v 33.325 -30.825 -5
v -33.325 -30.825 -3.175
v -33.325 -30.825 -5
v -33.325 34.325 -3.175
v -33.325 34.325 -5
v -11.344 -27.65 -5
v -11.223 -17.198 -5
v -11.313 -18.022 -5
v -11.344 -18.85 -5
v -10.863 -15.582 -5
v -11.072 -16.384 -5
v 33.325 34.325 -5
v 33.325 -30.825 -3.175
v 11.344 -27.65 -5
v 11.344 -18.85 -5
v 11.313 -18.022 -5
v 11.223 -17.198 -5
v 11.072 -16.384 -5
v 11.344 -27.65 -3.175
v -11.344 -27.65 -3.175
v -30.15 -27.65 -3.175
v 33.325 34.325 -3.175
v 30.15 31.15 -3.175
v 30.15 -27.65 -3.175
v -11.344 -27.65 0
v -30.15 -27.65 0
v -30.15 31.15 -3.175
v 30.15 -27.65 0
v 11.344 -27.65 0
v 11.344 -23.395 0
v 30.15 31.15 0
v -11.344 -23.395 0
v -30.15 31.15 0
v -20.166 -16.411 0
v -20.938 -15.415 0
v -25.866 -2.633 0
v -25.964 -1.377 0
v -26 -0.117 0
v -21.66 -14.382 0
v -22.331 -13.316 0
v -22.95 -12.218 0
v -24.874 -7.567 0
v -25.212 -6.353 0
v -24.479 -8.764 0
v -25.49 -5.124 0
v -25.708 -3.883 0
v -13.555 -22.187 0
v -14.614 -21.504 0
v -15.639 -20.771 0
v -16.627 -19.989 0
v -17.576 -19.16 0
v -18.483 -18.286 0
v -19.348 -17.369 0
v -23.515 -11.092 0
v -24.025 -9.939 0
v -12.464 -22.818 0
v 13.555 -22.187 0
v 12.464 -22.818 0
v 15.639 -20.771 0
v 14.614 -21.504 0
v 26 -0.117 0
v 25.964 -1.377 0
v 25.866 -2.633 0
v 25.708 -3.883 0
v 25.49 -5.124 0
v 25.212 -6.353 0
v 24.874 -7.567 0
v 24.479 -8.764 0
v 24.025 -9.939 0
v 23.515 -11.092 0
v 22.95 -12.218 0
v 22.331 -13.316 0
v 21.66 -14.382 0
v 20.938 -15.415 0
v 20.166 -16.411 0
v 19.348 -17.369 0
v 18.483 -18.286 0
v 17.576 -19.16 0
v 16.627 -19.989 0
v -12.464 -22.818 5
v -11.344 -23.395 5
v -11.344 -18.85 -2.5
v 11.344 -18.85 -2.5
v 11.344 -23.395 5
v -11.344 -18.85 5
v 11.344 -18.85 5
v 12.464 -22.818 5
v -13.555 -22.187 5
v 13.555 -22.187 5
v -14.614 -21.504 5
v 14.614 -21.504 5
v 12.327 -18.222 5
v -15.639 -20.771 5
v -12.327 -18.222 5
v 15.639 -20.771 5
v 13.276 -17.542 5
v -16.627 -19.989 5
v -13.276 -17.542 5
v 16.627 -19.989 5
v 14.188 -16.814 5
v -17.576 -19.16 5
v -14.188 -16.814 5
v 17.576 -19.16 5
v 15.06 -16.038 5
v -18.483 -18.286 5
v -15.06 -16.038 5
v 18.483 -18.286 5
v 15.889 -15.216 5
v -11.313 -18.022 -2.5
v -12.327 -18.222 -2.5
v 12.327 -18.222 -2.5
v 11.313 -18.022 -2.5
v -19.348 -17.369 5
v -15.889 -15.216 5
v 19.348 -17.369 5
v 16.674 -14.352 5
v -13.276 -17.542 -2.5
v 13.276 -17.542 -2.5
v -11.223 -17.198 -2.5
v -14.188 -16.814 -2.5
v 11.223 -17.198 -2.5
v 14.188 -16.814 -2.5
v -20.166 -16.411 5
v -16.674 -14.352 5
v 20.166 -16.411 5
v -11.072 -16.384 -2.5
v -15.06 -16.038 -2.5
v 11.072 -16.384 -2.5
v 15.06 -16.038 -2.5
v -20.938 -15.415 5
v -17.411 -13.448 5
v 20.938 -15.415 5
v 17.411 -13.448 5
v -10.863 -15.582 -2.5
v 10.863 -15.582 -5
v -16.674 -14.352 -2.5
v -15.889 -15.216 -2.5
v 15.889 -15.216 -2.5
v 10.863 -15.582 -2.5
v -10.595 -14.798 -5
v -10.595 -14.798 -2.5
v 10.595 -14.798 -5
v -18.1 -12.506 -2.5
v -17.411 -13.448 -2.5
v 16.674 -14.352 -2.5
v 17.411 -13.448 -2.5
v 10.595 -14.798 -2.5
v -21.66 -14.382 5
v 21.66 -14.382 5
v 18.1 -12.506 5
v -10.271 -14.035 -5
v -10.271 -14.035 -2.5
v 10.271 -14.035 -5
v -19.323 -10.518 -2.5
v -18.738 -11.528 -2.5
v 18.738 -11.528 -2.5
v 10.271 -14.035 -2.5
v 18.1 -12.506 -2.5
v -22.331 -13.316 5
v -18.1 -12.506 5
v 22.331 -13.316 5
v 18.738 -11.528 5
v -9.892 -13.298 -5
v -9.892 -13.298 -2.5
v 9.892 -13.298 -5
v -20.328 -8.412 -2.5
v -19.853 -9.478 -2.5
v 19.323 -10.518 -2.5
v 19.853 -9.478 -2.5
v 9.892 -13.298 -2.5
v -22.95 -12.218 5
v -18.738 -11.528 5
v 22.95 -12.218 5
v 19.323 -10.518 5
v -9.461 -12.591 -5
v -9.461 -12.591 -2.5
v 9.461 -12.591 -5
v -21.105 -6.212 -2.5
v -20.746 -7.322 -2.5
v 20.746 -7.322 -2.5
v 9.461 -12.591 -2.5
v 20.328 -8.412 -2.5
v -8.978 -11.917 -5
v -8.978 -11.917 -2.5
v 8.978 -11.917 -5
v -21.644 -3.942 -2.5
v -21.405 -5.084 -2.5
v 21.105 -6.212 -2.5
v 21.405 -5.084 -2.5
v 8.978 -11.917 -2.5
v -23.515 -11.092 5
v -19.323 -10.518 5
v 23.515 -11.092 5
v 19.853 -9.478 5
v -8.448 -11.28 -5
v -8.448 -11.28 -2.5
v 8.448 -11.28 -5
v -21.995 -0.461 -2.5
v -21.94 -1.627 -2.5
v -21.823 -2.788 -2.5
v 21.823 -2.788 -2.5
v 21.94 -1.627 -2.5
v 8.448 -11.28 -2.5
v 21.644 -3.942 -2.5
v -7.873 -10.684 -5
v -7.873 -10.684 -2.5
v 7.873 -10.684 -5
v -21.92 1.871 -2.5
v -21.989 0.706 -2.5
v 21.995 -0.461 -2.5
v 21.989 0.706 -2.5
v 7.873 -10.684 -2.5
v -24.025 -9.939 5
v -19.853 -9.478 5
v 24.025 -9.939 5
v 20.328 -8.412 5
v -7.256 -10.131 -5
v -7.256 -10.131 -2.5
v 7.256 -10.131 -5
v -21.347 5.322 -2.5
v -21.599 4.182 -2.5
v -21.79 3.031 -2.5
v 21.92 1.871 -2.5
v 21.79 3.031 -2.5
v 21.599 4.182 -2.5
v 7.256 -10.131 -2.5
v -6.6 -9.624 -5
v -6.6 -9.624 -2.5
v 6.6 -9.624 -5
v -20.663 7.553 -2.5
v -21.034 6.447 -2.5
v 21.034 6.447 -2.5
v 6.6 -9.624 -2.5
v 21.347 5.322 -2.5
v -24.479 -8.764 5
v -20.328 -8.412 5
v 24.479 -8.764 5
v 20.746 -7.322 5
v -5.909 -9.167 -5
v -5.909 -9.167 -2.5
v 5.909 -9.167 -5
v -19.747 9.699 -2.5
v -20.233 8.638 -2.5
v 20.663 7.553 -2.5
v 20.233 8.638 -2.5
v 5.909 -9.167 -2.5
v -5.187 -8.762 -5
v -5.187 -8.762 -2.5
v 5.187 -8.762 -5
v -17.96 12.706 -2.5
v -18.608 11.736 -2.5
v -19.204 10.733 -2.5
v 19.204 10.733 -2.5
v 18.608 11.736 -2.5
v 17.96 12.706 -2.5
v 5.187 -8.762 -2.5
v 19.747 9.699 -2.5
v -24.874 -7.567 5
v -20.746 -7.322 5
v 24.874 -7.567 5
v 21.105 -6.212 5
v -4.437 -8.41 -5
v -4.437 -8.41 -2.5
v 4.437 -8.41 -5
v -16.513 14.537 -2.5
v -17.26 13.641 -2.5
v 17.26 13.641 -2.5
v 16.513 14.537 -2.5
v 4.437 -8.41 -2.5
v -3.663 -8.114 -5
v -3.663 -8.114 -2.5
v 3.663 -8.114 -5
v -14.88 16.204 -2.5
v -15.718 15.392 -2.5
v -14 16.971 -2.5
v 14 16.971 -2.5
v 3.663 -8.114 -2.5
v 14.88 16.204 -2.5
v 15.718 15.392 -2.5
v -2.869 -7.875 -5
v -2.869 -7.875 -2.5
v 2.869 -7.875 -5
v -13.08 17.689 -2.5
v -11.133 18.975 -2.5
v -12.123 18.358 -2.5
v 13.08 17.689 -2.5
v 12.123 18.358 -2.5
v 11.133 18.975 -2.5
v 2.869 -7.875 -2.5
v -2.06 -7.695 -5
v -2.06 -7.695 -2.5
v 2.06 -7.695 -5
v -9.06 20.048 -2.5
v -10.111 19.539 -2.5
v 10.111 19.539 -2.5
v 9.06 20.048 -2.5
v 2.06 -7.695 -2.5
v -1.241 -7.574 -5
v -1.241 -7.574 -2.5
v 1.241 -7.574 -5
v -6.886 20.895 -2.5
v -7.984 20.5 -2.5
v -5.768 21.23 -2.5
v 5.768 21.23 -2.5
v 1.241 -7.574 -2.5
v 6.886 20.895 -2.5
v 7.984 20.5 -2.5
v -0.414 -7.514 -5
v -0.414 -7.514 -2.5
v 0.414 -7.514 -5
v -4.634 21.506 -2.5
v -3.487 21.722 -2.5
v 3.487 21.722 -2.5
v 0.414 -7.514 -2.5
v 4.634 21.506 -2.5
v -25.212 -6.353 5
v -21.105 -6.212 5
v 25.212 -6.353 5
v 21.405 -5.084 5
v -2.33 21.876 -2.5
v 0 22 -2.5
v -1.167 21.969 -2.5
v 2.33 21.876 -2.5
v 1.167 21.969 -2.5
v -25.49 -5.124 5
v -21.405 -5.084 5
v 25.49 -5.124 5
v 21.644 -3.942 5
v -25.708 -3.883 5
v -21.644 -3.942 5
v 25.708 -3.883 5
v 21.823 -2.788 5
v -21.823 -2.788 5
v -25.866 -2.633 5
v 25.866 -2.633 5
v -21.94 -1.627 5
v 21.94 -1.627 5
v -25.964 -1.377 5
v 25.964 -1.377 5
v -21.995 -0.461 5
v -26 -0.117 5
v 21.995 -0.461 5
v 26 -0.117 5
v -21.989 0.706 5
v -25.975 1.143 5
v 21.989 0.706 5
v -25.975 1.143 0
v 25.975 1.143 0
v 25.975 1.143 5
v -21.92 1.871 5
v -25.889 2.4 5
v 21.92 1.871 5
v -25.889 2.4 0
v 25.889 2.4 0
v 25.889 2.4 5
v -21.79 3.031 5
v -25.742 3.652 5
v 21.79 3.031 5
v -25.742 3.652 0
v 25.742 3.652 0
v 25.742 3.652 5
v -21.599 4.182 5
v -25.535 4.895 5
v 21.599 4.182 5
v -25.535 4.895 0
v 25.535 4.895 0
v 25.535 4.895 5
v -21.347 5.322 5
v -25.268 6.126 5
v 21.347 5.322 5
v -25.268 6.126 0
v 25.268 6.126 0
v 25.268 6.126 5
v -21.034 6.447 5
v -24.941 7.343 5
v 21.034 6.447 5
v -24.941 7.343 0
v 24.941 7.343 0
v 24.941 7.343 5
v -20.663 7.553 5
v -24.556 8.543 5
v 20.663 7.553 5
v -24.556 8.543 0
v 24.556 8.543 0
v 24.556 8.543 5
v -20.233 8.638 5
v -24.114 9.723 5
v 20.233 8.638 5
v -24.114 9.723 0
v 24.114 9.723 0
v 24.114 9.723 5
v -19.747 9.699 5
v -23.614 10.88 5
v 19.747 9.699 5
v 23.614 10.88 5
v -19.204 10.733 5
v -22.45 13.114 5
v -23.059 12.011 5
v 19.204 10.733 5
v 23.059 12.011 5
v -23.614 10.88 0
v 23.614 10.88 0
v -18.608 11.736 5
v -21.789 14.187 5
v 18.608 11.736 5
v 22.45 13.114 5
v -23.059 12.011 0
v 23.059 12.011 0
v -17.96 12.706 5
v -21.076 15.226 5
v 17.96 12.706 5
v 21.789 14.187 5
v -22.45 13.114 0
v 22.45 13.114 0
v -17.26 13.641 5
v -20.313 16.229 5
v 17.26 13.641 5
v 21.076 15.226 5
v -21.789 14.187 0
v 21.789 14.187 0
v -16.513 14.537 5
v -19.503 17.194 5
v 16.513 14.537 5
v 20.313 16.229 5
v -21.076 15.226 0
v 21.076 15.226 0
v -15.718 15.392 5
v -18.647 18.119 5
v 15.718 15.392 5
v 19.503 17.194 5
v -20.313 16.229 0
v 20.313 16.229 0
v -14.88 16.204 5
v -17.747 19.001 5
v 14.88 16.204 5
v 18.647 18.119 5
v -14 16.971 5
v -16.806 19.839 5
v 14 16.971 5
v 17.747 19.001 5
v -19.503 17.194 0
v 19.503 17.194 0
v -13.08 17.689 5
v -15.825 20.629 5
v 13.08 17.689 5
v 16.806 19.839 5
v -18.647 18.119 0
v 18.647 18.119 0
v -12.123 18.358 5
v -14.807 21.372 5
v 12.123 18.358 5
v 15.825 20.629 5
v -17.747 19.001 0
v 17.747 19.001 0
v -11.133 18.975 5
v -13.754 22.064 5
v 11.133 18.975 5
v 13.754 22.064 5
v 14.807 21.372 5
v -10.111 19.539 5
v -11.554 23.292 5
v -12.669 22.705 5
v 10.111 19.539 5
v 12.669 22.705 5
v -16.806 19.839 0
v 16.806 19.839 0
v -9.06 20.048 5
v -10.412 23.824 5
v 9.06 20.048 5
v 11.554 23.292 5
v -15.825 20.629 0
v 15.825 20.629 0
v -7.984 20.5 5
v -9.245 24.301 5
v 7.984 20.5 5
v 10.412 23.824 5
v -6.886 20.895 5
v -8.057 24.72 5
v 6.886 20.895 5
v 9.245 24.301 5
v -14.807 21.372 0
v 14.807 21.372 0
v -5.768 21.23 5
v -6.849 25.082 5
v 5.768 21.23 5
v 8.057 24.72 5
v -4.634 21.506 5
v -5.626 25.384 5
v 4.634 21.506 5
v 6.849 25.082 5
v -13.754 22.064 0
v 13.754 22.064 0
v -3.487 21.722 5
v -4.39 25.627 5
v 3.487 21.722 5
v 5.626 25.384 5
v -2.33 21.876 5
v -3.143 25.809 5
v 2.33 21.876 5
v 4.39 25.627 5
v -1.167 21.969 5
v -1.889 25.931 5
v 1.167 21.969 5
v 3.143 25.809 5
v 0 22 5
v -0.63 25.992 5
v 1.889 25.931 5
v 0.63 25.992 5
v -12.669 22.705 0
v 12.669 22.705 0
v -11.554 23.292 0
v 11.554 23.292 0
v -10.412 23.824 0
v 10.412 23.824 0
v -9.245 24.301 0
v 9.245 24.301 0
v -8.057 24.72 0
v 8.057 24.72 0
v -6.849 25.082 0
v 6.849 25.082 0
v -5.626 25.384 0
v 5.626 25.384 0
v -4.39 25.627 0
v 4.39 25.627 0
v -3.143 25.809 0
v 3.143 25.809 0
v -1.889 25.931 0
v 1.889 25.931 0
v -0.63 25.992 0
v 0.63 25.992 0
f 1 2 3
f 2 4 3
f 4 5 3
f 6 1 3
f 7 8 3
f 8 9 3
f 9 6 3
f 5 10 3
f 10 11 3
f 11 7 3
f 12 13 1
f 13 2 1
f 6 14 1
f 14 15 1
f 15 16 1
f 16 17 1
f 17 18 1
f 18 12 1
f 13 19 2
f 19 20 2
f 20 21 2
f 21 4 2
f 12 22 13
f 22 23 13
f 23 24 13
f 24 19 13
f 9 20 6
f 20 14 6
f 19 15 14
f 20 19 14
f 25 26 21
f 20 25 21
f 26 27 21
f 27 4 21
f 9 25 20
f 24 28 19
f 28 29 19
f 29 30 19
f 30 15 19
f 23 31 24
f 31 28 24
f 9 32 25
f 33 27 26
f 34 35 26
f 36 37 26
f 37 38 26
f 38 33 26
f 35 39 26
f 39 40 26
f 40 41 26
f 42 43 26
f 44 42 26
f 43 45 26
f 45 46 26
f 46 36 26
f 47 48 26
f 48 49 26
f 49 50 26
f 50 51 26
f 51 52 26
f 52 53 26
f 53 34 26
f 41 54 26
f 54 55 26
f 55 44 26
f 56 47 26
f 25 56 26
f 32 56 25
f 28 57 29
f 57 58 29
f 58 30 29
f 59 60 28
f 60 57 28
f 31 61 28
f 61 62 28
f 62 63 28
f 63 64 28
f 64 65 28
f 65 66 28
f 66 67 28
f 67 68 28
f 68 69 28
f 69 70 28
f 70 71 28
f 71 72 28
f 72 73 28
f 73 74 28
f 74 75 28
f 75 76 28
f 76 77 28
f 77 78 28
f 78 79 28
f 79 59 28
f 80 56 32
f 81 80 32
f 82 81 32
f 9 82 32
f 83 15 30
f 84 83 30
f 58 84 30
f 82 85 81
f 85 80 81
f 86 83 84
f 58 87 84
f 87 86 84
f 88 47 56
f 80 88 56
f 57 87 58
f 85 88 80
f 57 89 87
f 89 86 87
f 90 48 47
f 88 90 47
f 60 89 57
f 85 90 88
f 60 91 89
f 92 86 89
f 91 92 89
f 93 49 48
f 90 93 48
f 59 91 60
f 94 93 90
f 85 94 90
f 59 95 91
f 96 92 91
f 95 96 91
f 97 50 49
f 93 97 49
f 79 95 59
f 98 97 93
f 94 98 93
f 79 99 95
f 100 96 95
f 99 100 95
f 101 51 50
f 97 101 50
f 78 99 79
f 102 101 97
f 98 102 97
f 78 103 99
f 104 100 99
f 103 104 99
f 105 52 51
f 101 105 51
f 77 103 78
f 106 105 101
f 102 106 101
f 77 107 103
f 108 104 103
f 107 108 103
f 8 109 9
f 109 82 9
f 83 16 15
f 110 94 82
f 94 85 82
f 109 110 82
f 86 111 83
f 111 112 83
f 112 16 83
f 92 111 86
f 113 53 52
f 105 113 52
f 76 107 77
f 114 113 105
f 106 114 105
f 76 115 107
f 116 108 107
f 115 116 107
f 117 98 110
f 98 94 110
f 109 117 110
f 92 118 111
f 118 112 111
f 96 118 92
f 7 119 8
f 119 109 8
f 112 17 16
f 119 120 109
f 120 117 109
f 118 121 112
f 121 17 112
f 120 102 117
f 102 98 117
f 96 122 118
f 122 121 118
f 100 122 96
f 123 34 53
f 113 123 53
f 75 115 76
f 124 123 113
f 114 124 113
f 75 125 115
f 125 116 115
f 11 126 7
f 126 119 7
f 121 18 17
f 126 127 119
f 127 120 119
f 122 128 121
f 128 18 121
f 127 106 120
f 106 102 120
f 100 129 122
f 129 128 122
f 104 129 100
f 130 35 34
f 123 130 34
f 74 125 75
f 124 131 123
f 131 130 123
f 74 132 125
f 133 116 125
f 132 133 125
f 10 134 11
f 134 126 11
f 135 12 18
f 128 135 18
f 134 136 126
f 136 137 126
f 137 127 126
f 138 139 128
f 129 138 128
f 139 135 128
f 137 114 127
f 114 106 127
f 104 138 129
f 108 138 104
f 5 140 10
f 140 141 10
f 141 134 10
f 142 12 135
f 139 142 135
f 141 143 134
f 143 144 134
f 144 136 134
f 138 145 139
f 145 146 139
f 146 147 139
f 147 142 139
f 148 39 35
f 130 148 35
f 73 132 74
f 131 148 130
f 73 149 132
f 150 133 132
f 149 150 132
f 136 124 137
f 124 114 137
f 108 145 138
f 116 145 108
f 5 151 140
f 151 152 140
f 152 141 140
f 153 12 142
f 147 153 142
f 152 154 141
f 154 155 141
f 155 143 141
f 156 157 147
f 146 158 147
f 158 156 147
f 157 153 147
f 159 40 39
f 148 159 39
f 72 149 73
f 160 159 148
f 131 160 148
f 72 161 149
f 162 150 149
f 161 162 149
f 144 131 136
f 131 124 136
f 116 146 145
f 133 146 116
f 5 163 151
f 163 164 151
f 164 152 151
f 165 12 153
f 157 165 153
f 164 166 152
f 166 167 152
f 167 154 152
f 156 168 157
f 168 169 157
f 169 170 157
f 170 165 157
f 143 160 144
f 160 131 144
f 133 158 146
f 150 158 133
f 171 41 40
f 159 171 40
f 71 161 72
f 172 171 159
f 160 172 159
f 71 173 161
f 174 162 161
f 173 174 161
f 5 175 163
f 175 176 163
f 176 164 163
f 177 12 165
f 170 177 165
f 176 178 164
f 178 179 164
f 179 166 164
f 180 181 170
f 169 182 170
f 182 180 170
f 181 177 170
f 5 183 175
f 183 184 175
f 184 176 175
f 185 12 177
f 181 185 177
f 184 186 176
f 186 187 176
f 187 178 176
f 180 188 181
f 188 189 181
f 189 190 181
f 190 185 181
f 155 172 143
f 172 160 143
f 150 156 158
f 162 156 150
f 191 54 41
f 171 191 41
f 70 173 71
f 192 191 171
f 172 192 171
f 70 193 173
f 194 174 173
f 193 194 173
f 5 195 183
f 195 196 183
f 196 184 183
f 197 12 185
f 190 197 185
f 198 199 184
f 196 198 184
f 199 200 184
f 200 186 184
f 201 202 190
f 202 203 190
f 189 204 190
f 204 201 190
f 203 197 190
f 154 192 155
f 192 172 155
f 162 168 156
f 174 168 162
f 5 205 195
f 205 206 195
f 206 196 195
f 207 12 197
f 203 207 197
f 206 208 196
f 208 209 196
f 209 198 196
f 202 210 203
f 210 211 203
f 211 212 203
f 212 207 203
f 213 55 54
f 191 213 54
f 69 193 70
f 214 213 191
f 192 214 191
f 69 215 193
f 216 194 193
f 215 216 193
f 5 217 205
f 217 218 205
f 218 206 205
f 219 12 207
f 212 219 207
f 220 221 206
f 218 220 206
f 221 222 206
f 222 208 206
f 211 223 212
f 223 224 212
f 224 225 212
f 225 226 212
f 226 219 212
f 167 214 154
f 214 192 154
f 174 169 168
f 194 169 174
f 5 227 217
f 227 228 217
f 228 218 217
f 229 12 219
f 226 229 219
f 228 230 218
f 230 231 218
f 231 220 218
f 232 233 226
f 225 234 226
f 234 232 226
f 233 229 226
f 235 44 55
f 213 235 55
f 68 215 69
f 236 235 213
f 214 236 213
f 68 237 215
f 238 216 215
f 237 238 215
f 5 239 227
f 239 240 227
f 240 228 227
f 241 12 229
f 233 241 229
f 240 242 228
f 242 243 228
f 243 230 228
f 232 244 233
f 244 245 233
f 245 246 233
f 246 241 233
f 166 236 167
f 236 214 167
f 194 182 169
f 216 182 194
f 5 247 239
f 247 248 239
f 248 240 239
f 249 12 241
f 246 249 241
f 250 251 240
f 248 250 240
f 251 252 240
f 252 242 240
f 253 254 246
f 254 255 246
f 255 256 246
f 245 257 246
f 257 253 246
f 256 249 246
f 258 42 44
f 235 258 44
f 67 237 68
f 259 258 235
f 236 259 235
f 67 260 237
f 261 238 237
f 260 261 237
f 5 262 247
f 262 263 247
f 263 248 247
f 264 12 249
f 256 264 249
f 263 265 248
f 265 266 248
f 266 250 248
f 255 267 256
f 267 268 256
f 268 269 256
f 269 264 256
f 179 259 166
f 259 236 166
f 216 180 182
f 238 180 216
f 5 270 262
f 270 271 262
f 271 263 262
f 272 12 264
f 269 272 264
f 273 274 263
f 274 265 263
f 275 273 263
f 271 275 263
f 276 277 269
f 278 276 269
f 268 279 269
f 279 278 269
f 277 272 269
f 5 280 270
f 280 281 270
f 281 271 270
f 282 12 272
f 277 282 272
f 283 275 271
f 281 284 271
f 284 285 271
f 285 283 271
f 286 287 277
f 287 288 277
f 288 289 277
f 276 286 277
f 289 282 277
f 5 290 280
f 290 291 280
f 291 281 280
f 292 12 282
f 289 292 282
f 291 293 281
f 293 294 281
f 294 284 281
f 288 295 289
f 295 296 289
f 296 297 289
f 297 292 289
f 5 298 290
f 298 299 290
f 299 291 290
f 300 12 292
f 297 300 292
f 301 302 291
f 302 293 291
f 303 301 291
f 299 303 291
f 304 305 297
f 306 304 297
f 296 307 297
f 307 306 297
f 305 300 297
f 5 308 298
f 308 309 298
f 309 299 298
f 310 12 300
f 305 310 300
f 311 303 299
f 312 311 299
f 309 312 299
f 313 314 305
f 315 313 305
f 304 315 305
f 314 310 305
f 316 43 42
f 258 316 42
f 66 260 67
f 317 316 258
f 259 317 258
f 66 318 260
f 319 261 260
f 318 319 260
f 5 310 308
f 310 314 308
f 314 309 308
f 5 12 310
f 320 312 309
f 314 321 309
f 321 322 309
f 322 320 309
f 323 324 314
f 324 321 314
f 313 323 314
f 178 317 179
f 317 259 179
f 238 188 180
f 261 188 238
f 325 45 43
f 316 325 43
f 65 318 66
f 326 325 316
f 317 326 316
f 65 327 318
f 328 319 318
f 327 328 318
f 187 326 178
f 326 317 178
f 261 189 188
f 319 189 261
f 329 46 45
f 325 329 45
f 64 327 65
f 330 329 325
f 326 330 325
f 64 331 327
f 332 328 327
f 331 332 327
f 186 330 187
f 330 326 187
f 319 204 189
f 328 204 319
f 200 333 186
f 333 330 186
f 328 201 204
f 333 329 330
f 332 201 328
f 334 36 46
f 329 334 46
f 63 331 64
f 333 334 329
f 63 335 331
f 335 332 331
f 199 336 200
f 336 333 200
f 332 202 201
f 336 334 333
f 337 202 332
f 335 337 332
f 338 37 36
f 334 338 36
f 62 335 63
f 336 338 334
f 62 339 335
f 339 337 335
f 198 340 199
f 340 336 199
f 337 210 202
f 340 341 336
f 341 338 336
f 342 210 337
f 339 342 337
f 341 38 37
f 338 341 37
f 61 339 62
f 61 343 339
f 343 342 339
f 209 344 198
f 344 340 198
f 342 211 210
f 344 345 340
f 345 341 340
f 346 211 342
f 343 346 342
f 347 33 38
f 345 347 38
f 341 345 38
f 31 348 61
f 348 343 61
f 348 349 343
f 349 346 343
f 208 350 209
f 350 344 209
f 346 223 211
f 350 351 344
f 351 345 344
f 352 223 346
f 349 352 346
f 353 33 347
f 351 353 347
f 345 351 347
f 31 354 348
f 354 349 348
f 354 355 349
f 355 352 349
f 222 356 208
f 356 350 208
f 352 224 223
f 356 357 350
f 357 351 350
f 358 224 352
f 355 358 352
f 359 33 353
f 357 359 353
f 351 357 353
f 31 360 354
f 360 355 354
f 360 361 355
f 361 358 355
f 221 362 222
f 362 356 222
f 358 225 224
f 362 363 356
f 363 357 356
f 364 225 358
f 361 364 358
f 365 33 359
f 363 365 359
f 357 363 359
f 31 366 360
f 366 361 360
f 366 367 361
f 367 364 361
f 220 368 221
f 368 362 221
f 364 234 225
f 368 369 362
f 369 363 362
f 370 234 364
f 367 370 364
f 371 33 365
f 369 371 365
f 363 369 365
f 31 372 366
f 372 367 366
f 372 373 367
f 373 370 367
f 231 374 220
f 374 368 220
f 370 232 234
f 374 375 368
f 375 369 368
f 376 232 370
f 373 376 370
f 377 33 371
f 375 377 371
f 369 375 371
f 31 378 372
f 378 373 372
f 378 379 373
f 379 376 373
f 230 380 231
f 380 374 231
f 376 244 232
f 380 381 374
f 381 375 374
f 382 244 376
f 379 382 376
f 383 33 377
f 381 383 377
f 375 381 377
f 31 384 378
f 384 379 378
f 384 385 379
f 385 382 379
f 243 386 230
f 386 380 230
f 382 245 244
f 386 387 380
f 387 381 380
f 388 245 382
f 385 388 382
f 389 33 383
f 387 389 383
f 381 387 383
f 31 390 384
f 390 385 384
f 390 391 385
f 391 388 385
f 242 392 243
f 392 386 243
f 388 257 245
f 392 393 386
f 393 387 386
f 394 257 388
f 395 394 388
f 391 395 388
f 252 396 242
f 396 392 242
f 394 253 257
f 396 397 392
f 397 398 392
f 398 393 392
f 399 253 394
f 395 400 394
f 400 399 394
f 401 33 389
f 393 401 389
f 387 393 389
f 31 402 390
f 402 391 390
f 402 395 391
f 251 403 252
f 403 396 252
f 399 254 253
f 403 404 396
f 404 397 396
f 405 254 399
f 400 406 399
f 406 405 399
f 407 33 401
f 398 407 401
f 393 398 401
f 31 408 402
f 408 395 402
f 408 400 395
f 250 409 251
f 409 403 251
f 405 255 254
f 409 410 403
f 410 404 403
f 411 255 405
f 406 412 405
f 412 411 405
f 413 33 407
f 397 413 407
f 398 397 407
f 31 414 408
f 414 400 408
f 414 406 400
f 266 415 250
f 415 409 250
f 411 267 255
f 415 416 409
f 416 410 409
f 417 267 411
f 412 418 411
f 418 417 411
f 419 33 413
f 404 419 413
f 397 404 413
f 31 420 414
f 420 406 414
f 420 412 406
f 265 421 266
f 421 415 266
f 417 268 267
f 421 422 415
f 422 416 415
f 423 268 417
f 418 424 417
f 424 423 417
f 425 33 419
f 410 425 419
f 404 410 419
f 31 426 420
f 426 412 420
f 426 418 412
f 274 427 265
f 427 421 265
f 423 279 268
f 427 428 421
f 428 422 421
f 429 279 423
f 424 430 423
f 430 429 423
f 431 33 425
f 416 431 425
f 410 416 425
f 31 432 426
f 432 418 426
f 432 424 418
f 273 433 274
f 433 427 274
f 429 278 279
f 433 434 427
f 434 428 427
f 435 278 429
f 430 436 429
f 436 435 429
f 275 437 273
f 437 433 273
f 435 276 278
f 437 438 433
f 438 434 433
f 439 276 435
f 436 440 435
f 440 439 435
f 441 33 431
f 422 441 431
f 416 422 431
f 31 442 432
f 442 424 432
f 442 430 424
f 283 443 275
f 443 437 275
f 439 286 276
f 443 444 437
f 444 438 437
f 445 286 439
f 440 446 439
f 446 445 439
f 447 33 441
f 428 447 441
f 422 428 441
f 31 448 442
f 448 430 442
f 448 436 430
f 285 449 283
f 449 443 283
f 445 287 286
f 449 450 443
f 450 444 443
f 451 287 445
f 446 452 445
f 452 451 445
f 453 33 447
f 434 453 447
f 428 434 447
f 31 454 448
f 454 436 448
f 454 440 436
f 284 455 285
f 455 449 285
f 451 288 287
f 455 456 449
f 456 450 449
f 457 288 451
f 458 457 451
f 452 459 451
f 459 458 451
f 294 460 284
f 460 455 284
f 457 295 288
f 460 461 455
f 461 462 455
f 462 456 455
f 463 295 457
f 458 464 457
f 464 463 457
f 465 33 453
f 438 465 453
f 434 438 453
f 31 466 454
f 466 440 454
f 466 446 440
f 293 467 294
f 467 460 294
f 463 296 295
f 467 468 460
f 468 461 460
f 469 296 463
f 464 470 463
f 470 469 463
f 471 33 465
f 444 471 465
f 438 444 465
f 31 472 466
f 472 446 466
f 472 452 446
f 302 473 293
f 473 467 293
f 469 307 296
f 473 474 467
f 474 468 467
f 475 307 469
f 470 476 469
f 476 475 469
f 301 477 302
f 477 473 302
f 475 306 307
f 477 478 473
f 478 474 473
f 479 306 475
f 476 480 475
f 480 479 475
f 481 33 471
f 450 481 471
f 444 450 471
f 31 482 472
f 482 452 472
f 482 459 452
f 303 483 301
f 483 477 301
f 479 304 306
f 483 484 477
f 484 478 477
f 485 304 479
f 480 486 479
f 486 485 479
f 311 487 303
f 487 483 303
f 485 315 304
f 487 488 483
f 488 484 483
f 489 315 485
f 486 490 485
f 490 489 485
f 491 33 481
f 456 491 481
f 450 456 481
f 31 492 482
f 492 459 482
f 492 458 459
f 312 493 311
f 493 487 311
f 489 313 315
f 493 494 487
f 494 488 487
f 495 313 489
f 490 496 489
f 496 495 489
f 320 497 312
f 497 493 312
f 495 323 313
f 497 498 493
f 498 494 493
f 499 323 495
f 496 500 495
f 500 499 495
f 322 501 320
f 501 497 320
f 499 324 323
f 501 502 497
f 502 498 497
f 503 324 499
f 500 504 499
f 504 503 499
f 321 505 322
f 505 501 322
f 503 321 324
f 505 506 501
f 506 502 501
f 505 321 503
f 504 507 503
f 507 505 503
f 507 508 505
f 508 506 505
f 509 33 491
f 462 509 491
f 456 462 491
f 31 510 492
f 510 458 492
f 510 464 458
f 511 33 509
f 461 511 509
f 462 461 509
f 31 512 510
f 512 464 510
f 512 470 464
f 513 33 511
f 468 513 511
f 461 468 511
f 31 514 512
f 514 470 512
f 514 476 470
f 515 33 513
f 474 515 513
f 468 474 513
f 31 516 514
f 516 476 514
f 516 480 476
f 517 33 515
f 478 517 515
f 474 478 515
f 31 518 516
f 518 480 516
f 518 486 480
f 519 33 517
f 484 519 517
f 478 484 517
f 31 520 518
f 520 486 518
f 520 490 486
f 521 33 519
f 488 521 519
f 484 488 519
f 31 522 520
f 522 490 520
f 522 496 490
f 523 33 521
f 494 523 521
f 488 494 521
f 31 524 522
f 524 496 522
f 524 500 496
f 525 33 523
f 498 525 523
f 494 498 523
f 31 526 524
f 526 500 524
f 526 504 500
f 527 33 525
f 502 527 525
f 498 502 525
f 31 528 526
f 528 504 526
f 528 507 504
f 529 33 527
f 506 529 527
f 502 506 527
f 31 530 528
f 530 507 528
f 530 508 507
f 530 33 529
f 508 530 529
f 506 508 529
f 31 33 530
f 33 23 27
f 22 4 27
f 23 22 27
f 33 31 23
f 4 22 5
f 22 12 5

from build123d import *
from build123d.topology import SkipClean

# Parameters (mm, degrees)
SKETCH16_W           = 60.3
SKETCH16_H           = 58.8
SKETCH16_R           = 22
BOSS_EXTRUDE2_DEPTH  = 5
SKETCH22_W           = 60.3
SKETCH22_H           = 2.5
BOSS_EXTRUDE7_DEPTH  = 50
BOSS_EXTRUDE8_START  = 5
BOSS_EXTRUDE8_DEPTH  = 5
SKETCH27_W           = 66.65
SKETCH27_H           = 65.15
BOSS_EXTRUDE10_DEPTH = 1.825
CUT_EXTRUDE3_DEPTH   = 26.375


with BuildPart() as part:
    # Sketch16 → Boss-Extrude2 (new body)
    with BuildSketch(Plane.XY):
        with Locations((0, 1.75)):
            Rectangle(SKETCH16_W, SKETCH16_H)
        Circle(SKETCH16_R, mode=Mode.SUBTRACT)
    extrude(amount=-BOSS_EXTRUDE2_DEPTH)

    # Sketch22 → Boss-Extrude7 (add)
    with BuildSketch(Plane(origin=(0, 31.15, 0), x_dir=(1, 0, 0), z_dir=(0, 1, 0))):
        with Locations((0, 3.75)):
            Rectangle(SKETCH22_W, SKETCH22_H)
    extrude(amount=-BOSS_EXTRUDE7_DEPTH)

    # Sketch23 → Boss-Extrude8 (add)
    with SkipClean():  # the faces are left unmerged after this step: merging them gives an invalid solid
        with BuildSketch(Plane.XY.offset(BOSS_EXTRUDE8_START)):
            with BuildLine():
                ThreePointArc((26, 0), (-13.803371437, 22.033314253), (-11.343610536, -23.394924663))
                Line((-11.343610536, -23.394924663), (-11.343610536, -18.85))
                ThreePointArc((-11.343610536, -18.85), (-10.826831674, 19.151493829), (22, 0))
                Line((22, 0), (22, -13.856406461))
                ThreePointArc((22, -13.856406461), (24.979991994, -7.211102551), (26, 0))
            make_face()
            with BuildLine():
                Line((11.343610536, -18.85), (11.343610536, -23.394924663))
                ThreePointArc((11.343610536, -23.394924663), (17.340557179, -19.372792177), (22, -13.856406461))
                Line((22, -13.856406461), (22, 0))
                ThreePointArc((22, 0), (19.151493829, -10.826831674), (11.343610536, -18.85))
            make_face()
        extrude(amount=-BOSS_EXTRUDE8_DEPTH)

    # Sketch27 → Boss-Extrude10 (add)
    with SkipClean():  # the faces are left unmerged after this step: merging them gives an invalid solid
        with BuildSketch(Plane.XY.offset(-3.175)):
            with Locations((0, 1.75)):
                Rectangle(SKETCH27_W, SKETCH27_H)
        extrude(amount=-BOSS_EXTRUDE10_DEPTH)

    # Sketch24 → Cut-Extrude3 (cut, symmetric)
    with SkipClean():  # the faces are left unmerged after this step: merging them gives an invalid solid
        with BuildSketch(Plane.XY.offset(-2.5)):
            with BuildLine():
                Line((-11.343610536, -18.85), (-11.343610536, -27.65))
                Line((-11.343610536, -27.65), (11.343610536, -27.65))
                Line((11.343610536, -27.65), (11.343610536, -18.85))
                ThreePointArc((11.343610536, -18.85), (0, -7.506389464), (-11.343610536, -18.85))
            make_face()
        extrude(amount=CUT_EXTRUDE3_DEPTH, both=True, mode=Mode.SUBTRACT)


solid = part.part
